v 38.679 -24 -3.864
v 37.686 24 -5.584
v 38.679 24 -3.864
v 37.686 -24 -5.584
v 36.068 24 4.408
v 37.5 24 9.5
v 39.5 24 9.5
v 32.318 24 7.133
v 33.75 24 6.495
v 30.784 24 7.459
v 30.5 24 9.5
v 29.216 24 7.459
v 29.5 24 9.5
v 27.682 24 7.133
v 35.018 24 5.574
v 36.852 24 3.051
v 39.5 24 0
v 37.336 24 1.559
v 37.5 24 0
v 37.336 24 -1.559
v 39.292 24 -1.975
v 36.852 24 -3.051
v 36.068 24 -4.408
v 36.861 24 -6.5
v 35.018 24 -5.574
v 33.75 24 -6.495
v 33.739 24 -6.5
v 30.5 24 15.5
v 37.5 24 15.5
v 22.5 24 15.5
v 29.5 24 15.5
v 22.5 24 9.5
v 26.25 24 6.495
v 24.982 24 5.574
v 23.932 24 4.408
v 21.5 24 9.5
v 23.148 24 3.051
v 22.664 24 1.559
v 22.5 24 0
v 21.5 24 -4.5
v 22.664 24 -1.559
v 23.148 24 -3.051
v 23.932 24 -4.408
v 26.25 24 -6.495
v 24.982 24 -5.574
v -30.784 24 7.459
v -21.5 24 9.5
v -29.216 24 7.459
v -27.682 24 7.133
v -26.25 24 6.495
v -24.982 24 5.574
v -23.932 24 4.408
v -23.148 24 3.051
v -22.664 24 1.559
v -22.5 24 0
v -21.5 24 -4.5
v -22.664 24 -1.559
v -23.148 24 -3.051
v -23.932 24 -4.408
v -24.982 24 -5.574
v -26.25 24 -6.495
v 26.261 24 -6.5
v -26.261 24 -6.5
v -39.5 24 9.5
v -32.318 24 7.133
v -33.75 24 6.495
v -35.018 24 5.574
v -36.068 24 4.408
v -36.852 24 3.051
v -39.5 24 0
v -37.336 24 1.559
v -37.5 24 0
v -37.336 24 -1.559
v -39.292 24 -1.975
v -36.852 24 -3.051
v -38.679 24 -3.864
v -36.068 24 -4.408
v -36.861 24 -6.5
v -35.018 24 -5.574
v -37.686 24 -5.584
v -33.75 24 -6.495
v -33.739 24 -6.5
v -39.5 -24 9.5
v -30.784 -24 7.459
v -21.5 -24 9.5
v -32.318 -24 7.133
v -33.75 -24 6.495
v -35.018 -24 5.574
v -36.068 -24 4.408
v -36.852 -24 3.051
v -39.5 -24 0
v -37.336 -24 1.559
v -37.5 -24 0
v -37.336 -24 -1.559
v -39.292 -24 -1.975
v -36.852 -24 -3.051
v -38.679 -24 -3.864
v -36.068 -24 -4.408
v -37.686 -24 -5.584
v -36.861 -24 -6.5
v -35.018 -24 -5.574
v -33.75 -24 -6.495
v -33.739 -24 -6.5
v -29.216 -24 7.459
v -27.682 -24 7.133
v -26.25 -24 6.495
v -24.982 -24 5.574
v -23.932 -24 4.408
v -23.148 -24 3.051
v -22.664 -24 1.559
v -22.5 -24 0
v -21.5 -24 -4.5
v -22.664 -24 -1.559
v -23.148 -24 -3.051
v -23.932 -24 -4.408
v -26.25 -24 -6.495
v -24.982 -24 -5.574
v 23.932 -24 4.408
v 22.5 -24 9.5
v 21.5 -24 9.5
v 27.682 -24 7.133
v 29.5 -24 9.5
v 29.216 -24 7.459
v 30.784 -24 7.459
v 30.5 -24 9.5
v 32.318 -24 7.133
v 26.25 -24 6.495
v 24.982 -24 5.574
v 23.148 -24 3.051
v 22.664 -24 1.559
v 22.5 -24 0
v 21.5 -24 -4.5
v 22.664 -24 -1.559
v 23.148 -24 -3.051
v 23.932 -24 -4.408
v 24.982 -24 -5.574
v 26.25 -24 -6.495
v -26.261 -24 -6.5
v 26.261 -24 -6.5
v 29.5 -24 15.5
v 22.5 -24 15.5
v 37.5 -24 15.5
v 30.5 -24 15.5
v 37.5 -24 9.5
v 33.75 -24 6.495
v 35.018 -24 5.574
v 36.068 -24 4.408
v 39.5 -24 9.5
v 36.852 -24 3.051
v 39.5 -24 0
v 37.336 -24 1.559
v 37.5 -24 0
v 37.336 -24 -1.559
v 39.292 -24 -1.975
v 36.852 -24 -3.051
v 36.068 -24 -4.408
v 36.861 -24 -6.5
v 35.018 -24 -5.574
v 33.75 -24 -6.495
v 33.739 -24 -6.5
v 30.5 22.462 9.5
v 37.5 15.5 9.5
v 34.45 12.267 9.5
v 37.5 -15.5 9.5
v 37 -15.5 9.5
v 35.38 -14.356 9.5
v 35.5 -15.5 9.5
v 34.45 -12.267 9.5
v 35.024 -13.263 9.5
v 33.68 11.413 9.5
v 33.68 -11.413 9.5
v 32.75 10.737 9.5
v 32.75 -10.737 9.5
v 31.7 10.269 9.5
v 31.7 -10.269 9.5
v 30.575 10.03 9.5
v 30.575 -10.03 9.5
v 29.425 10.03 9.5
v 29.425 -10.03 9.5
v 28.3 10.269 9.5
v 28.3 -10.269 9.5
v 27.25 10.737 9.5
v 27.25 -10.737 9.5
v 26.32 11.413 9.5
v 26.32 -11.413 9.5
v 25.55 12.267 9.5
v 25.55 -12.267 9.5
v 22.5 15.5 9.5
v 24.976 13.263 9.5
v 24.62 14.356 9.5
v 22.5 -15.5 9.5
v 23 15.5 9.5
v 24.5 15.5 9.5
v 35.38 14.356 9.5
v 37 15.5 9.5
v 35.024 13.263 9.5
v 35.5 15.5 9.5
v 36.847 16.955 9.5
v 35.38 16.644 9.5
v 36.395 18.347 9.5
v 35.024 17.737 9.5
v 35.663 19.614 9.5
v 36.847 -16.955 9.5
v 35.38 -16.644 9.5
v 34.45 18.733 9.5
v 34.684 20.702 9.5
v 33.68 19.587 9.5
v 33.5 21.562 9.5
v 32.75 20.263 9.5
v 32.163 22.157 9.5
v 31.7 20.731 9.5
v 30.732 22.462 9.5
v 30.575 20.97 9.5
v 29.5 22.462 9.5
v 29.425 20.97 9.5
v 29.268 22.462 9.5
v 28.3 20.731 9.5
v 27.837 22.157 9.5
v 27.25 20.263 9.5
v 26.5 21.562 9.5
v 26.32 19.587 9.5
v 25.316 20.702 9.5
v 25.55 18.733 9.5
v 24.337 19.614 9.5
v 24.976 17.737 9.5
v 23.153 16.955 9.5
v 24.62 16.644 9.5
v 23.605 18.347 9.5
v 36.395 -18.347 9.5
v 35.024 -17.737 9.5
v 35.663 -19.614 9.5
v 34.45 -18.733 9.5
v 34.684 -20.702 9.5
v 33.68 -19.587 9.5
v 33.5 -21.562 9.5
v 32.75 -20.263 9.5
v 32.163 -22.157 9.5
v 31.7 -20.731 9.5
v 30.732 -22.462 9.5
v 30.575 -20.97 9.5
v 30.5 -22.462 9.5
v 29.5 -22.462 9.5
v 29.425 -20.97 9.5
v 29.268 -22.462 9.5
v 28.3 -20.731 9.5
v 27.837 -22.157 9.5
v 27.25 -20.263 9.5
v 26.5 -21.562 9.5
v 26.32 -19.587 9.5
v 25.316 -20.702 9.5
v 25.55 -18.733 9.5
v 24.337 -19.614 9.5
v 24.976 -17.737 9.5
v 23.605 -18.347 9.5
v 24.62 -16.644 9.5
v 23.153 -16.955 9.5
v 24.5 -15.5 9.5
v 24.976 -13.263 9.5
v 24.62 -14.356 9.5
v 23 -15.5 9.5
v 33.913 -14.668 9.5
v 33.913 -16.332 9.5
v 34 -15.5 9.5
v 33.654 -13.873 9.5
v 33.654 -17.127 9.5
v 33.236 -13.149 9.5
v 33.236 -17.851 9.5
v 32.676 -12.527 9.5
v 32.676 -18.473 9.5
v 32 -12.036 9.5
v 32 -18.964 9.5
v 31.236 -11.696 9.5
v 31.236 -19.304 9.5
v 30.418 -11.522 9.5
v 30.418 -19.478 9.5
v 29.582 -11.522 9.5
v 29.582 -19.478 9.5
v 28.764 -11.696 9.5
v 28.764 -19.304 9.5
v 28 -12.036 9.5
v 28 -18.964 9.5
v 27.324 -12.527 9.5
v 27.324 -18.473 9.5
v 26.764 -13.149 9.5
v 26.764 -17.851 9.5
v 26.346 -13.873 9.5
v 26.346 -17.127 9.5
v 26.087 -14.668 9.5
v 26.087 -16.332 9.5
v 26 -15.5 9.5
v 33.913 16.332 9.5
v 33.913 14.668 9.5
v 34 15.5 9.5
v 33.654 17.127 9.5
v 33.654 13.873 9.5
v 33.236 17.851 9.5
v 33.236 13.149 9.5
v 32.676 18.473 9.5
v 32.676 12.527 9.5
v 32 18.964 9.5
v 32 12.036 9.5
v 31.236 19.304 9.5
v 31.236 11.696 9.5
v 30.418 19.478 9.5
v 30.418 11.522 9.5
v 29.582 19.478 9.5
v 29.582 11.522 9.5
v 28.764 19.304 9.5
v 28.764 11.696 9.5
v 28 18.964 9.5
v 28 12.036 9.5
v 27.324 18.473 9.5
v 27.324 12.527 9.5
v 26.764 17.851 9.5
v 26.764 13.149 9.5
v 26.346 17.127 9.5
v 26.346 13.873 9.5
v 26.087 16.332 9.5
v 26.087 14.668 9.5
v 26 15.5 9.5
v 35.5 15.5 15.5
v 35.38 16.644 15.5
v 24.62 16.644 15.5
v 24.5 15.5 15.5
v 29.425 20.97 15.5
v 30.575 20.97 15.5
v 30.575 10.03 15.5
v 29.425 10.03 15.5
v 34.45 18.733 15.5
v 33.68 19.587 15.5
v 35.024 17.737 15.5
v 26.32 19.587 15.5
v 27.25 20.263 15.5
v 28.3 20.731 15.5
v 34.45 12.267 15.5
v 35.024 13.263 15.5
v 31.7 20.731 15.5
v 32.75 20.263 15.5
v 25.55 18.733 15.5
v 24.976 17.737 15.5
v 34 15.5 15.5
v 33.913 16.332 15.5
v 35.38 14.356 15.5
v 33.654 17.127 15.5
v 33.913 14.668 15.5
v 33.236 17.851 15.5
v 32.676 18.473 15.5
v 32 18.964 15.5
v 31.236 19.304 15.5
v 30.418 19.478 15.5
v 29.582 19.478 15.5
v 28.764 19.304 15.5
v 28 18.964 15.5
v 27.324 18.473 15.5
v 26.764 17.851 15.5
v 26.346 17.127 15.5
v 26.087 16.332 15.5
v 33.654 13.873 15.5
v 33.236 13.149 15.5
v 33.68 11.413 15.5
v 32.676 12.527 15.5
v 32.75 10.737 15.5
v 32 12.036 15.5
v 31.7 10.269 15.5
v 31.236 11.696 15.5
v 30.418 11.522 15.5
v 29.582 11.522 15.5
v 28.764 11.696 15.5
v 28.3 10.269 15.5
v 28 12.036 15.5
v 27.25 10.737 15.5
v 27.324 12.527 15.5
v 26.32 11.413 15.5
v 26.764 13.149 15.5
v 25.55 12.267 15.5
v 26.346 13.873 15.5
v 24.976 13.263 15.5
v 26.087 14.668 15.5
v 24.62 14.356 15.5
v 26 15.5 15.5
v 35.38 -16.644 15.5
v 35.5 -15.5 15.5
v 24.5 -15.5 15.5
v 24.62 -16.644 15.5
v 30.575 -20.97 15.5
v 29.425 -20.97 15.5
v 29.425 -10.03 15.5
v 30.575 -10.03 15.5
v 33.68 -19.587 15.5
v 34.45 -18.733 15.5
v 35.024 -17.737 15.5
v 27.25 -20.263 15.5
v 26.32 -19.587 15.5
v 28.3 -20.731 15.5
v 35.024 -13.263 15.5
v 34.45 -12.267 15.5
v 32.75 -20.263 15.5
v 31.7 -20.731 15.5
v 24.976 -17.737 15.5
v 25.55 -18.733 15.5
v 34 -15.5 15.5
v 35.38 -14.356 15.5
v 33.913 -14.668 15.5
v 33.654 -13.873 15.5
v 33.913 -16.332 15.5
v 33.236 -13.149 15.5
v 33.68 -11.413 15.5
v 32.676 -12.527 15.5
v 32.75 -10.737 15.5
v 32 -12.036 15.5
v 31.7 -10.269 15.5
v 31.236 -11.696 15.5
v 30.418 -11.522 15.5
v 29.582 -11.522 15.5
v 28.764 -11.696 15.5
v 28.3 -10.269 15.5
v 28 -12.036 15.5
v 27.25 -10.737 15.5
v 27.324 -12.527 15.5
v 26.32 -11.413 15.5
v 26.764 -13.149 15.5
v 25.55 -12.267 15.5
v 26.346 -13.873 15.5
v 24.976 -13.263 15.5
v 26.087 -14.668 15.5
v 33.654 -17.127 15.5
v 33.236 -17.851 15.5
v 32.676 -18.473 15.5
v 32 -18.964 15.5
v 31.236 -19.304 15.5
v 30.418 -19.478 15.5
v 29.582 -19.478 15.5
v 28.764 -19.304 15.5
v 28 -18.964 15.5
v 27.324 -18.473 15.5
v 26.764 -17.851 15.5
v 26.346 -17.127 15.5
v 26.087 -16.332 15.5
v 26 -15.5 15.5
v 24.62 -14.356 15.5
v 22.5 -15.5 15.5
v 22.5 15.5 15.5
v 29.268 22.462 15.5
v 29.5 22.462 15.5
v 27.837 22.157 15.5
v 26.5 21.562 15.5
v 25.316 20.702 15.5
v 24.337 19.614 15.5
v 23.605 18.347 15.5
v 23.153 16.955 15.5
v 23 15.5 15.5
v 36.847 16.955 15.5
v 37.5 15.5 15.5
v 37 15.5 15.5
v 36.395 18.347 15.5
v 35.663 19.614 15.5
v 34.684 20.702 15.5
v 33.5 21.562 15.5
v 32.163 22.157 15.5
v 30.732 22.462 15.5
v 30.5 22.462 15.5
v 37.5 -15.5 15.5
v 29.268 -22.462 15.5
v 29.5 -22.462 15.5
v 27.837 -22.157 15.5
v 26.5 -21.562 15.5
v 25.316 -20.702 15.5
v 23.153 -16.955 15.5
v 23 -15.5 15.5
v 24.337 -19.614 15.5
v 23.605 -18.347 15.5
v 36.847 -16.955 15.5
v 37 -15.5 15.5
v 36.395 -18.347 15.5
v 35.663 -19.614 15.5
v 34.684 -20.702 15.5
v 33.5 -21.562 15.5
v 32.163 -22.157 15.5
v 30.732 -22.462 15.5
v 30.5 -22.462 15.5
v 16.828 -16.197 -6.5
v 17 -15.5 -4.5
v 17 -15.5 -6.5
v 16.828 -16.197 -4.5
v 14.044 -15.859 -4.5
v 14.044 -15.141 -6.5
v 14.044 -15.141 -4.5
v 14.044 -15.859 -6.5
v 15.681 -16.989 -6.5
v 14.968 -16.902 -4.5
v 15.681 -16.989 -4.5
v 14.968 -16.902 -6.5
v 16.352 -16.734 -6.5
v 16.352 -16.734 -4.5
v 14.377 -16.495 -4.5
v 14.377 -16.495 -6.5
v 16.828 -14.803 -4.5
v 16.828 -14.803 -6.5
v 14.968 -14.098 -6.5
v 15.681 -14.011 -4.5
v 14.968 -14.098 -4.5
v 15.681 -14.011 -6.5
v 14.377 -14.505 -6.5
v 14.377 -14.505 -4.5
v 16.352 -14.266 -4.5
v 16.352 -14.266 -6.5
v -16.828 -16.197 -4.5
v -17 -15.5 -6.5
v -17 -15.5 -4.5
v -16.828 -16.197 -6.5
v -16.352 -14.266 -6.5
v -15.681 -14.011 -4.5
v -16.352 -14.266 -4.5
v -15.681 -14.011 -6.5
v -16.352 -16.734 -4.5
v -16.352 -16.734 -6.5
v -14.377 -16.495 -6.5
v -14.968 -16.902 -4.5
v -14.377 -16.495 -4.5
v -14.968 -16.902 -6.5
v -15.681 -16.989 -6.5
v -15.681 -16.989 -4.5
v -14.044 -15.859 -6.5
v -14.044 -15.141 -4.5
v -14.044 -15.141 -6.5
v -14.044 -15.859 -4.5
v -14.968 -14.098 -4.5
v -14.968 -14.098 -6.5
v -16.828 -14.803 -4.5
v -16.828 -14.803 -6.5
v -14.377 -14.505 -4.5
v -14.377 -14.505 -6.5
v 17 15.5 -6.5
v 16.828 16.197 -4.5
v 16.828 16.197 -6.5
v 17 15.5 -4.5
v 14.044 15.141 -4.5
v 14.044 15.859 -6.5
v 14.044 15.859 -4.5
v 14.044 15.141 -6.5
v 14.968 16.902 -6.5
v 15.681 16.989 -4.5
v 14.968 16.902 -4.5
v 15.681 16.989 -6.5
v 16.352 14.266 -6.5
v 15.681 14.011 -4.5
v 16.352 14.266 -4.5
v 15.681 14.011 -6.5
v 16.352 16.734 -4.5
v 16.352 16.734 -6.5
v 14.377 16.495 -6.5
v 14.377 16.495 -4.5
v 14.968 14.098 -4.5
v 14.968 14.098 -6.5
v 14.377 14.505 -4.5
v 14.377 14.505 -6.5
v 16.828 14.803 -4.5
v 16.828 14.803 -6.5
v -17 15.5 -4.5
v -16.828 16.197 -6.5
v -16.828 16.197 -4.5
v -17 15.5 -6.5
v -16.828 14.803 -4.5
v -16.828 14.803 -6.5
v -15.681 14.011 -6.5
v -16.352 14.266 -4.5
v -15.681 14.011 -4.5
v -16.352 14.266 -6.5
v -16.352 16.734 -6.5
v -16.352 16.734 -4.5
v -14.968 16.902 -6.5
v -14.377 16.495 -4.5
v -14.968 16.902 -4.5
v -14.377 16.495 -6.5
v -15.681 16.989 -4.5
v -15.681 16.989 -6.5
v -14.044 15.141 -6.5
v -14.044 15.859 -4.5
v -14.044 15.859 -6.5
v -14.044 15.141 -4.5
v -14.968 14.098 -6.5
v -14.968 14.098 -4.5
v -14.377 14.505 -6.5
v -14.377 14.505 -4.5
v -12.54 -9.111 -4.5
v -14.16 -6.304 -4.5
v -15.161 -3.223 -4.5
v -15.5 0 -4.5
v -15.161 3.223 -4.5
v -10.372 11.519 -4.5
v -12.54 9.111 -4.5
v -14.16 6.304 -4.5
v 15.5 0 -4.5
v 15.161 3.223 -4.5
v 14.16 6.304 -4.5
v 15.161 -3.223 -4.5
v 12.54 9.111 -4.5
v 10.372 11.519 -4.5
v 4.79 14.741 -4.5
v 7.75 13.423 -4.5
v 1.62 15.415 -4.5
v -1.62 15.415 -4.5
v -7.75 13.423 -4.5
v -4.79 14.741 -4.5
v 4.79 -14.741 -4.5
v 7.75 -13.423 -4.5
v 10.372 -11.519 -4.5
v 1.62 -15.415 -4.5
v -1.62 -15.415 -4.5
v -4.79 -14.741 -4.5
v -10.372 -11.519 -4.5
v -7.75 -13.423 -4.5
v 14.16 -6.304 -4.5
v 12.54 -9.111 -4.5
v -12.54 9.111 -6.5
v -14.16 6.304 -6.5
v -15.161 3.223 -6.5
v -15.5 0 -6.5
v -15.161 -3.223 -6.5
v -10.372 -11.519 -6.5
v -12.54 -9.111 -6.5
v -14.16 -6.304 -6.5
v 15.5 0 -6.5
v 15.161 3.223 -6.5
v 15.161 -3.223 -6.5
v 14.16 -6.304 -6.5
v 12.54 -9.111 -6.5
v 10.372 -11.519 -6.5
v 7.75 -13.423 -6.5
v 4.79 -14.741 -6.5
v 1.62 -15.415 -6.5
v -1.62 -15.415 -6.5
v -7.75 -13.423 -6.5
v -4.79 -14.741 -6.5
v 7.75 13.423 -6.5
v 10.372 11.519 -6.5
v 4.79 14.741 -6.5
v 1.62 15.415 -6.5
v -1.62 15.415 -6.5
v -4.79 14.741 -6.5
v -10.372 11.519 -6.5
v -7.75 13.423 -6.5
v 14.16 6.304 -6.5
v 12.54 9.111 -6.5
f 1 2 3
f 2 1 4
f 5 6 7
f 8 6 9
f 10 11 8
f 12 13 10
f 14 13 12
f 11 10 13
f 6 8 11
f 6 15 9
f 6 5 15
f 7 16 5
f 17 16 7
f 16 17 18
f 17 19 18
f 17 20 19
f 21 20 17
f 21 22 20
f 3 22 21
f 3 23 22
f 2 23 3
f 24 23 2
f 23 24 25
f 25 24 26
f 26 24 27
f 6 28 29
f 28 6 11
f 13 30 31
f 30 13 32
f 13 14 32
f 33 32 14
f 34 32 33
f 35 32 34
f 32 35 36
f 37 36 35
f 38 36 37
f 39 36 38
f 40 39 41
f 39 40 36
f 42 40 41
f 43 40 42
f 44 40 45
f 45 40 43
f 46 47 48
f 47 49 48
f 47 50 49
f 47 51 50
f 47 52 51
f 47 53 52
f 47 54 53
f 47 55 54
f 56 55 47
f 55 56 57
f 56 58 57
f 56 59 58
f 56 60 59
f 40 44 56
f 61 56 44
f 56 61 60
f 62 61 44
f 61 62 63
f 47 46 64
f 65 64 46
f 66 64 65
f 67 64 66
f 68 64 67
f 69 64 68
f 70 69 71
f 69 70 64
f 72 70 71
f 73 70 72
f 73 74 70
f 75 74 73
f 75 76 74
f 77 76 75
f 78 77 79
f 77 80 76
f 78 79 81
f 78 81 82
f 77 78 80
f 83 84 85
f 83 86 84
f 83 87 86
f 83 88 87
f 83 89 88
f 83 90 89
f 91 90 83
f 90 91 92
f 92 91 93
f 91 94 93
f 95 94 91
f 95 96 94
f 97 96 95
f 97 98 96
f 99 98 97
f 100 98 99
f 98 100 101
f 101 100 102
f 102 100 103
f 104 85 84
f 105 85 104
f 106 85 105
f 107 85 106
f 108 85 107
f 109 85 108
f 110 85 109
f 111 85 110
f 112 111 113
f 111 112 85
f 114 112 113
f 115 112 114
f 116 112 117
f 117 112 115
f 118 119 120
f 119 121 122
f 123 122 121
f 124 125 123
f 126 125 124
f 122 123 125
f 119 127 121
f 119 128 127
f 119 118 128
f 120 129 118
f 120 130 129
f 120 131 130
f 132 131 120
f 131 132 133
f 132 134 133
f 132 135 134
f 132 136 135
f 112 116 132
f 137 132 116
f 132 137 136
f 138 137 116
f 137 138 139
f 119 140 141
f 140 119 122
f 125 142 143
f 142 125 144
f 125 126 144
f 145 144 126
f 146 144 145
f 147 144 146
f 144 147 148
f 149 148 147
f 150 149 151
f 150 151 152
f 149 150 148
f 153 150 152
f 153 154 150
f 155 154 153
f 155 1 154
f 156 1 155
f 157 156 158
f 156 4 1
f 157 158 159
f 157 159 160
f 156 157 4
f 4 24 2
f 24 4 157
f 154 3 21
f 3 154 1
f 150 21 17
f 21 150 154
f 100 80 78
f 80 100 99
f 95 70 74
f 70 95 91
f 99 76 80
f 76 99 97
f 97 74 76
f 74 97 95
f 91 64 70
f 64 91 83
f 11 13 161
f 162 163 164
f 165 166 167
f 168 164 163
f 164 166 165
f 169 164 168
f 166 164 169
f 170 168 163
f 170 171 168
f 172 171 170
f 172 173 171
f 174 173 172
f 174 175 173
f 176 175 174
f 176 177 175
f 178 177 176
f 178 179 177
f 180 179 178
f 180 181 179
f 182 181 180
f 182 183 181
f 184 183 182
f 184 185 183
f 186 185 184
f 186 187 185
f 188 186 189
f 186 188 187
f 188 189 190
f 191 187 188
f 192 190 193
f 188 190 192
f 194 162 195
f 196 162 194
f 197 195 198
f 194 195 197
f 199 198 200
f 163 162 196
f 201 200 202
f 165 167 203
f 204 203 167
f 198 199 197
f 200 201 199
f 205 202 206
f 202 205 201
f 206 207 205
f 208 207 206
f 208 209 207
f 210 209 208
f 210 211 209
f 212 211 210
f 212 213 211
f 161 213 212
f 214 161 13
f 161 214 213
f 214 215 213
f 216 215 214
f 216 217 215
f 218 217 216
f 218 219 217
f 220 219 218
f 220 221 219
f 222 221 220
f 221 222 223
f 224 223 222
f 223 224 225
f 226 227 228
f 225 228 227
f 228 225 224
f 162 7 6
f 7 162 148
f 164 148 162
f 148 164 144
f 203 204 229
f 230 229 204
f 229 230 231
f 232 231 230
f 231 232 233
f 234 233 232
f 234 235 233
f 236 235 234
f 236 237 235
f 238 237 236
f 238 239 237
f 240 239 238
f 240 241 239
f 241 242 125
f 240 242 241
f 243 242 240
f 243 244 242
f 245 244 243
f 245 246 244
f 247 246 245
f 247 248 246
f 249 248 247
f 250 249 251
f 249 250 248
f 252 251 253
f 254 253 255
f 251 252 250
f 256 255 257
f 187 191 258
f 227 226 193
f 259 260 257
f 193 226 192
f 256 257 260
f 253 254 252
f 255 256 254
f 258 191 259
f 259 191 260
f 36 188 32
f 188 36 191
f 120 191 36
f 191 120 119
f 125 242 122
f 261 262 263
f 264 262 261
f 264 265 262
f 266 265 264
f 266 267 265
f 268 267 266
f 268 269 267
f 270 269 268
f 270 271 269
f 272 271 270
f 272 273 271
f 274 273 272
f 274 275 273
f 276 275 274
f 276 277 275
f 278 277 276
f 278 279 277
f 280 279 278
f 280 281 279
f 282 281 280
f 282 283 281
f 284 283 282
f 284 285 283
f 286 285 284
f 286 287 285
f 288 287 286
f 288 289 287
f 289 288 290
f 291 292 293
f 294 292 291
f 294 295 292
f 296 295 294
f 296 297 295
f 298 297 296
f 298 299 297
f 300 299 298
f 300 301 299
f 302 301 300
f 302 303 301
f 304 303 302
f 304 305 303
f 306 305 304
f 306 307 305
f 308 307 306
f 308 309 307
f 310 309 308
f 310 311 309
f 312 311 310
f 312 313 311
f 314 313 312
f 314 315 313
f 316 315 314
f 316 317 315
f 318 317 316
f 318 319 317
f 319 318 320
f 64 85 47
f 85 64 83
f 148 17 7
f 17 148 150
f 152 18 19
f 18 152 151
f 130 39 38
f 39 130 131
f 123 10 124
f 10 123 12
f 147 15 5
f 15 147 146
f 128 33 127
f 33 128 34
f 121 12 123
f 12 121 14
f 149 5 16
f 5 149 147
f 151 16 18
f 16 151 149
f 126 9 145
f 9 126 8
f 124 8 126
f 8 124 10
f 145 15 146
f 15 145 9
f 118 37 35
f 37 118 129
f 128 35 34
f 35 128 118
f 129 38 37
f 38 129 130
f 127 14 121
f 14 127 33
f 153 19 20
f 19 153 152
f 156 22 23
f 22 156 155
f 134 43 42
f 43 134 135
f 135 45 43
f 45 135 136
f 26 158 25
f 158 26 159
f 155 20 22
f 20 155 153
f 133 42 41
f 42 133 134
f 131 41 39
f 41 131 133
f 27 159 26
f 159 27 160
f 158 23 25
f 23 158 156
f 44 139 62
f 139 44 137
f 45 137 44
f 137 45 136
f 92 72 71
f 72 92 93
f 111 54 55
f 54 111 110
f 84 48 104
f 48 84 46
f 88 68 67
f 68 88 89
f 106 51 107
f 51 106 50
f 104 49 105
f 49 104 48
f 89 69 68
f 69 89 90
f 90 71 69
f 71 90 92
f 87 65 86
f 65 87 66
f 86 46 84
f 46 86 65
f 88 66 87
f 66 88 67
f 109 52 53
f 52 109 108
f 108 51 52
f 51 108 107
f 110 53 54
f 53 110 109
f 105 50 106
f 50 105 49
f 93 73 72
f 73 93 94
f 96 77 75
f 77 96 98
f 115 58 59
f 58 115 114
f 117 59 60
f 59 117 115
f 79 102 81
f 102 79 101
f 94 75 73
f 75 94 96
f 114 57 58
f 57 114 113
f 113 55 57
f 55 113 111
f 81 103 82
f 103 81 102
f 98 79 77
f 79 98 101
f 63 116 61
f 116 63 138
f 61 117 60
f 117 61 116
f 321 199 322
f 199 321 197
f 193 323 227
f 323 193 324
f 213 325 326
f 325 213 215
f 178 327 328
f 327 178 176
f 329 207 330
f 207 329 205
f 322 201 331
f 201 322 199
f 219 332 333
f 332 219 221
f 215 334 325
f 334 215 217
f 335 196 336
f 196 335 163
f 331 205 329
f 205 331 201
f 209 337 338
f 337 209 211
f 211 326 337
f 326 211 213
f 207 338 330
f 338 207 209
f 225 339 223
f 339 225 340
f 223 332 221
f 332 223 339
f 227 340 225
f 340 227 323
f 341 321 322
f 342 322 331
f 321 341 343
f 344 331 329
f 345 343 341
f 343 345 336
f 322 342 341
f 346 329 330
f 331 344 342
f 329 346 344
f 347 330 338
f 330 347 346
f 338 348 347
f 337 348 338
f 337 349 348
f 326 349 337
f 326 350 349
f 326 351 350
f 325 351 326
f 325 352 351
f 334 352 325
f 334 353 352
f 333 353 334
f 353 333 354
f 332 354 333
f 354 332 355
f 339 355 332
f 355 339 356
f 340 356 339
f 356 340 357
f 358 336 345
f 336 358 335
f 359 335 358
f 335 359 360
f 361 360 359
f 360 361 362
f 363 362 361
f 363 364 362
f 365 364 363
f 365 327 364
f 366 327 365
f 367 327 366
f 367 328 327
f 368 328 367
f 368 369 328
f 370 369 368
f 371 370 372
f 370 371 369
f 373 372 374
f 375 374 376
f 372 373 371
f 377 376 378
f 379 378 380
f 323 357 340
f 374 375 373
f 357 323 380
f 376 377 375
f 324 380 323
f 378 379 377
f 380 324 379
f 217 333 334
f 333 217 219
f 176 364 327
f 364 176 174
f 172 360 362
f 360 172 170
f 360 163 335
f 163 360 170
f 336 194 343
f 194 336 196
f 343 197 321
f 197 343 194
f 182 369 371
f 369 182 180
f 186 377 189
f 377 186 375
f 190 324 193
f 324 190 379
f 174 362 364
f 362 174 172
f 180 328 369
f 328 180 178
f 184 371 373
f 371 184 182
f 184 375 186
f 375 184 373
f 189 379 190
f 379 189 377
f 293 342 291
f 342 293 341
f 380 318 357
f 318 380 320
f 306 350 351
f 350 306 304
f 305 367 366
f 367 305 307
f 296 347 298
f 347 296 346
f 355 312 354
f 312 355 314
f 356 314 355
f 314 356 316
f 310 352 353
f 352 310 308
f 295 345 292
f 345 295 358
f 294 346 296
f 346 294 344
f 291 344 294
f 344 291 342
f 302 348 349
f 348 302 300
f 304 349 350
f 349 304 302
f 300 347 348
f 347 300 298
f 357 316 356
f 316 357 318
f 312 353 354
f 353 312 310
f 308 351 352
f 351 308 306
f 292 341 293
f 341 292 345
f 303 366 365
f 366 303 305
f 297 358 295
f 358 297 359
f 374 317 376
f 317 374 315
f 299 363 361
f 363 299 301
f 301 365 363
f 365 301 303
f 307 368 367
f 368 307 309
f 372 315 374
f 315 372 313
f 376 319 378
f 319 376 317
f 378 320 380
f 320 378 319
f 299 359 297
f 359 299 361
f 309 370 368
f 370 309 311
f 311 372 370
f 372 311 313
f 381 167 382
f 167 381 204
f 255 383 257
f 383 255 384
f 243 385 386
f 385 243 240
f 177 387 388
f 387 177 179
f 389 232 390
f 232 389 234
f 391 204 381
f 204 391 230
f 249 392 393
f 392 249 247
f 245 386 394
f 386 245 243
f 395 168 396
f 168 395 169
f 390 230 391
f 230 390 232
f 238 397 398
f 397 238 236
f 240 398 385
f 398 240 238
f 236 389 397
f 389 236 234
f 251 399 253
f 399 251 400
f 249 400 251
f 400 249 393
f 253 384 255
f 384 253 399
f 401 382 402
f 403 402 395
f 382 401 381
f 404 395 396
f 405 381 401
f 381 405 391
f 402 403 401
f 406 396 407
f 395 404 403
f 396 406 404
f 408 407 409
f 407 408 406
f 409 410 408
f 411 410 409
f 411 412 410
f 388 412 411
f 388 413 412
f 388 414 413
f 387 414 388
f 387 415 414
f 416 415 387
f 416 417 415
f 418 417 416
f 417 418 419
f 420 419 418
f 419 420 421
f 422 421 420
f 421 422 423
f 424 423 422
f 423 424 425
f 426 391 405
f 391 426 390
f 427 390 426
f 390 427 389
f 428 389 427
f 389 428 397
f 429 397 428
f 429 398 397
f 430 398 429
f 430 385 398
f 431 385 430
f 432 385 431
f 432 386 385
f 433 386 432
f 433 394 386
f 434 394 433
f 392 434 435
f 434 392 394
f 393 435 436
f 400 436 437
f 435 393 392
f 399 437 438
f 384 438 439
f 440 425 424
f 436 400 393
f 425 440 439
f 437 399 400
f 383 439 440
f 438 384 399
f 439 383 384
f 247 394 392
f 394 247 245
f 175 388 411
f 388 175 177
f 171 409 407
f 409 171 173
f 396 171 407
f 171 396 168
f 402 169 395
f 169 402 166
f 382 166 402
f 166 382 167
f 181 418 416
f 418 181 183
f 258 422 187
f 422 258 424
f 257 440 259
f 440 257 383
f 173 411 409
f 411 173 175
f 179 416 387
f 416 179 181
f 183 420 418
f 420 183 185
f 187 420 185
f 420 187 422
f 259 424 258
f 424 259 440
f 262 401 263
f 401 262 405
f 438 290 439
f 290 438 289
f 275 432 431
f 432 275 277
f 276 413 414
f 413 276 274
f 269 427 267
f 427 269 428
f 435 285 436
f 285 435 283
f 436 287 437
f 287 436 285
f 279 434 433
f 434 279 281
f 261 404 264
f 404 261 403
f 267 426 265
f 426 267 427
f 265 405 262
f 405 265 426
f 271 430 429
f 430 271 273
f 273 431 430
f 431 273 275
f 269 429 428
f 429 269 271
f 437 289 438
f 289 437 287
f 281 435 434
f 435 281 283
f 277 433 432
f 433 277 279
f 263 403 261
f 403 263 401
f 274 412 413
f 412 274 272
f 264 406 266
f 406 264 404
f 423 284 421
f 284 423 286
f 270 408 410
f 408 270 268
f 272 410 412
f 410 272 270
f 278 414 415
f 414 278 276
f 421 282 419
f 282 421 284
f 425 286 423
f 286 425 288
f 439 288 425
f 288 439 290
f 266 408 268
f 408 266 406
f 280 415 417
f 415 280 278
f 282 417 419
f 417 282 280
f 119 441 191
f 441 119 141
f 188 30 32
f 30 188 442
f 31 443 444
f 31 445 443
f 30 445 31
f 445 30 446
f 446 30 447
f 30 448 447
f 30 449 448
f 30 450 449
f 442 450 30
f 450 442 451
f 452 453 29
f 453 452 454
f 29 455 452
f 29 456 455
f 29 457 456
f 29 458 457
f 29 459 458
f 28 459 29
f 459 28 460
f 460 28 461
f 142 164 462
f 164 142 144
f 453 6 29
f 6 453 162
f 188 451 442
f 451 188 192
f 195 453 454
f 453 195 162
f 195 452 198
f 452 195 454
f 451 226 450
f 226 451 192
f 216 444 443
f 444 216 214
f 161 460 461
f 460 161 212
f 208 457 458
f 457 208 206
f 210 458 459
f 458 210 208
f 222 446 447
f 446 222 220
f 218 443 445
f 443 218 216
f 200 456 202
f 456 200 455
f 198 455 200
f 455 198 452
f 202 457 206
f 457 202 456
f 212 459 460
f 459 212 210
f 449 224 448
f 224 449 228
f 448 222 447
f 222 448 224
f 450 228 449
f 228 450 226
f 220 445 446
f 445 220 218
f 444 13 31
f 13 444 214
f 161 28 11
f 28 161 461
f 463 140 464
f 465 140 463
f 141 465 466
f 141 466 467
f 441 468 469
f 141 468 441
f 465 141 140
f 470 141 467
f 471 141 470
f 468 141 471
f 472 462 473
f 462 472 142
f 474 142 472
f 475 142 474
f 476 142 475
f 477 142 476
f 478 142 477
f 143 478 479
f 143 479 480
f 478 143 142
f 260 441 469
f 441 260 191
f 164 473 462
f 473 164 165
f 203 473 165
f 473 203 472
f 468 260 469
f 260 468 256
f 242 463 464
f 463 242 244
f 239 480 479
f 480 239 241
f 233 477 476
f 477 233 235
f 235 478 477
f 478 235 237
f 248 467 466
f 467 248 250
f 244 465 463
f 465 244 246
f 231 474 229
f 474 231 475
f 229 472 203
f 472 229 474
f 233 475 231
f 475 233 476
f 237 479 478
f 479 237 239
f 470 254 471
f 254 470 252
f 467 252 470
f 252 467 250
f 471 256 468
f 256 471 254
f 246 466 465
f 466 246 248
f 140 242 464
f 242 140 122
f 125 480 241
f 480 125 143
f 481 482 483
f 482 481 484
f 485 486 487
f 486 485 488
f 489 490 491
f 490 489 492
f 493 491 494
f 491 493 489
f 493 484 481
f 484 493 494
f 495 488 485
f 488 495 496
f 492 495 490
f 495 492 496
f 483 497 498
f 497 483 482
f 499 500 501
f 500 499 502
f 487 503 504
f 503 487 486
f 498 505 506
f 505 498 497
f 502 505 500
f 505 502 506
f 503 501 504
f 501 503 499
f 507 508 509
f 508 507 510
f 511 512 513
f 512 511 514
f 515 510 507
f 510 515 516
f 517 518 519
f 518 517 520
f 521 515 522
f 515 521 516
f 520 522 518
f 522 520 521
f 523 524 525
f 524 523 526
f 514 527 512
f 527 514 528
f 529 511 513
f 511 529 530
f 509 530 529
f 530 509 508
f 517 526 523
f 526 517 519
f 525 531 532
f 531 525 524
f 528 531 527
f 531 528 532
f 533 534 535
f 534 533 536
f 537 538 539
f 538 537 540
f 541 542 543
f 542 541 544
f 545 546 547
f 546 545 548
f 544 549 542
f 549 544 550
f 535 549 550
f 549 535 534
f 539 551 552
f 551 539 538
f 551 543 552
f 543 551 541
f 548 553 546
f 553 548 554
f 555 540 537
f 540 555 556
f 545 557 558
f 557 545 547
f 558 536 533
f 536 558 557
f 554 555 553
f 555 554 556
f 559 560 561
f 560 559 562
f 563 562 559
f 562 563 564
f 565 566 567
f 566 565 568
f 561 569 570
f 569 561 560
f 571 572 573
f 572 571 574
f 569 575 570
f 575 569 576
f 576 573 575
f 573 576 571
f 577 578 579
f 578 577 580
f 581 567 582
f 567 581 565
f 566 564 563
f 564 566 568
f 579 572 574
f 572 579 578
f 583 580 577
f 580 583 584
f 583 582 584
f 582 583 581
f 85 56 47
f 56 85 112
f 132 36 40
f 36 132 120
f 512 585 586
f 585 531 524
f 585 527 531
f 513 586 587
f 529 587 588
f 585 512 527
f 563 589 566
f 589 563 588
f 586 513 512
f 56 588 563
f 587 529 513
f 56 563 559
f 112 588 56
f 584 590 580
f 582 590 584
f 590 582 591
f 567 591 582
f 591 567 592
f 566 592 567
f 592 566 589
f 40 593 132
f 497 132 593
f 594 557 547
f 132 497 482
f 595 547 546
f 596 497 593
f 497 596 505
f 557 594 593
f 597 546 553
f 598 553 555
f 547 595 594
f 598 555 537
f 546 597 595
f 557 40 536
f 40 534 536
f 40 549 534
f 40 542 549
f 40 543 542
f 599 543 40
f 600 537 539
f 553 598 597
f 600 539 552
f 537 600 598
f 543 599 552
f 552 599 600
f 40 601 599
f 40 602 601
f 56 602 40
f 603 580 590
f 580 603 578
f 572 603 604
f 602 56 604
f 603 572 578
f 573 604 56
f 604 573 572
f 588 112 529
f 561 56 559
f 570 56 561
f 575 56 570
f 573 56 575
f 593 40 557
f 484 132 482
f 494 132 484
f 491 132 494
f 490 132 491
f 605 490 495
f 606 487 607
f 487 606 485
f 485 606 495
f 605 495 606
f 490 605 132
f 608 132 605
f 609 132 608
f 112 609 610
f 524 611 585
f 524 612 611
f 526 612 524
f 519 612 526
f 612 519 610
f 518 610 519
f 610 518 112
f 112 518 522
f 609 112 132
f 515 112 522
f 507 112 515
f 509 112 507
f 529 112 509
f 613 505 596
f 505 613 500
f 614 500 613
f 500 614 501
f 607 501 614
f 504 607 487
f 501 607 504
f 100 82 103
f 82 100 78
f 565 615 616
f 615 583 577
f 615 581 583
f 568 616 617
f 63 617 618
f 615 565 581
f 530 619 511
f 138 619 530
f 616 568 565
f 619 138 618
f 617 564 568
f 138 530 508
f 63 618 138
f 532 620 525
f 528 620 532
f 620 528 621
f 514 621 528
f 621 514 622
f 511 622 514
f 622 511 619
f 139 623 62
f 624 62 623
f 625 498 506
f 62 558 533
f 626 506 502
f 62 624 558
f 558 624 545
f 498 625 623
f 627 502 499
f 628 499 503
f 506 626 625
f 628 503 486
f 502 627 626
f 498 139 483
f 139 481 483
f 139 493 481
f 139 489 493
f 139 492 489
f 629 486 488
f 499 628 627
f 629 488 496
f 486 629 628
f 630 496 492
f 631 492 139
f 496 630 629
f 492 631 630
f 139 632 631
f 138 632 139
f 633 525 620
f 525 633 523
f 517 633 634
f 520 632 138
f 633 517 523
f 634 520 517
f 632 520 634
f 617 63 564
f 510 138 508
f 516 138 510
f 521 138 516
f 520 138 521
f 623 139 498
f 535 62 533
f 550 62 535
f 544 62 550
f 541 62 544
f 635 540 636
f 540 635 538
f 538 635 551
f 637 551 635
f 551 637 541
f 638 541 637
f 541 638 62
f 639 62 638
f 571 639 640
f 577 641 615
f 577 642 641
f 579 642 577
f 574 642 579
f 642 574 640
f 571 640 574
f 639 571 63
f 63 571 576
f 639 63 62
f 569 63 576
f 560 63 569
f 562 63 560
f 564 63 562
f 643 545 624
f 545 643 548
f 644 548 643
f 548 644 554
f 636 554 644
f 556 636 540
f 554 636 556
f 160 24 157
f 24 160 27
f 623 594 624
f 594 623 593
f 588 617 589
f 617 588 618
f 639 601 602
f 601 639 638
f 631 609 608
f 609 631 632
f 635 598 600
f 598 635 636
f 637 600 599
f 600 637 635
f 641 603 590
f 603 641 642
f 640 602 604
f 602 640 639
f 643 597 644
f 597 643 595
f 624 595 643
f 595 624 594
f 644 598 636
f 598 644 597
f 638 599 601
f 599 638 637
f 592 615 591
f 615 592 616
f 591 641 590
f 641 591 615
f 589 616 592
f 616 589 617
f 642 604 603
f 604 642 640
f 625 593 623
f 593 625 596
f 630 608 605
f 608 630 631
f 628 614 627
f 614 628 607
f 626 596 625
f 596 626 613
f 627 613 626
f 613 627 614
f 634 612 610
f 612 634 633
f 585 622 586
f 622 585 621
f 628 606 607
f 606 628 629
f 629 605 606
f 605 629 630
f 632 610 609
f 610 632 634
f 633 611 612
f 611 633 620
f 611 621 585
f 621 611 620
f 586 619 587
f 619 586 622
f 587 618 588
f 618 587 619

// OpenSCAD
$fs=.75;

union() {
	difference() {
		union() {
			translate(v = [30.0000000000, 0, 0]) {
				rotate(a = [90, 0, 0]) {
					translate(v = [-0.0000000000, -0.0000000000, -24.0000000000]) {
						cylinder(d = 19.0000000000, h = 48.0000000000);
					}
				}
			}
			mirror(v = [1, 0, 0]) {
				translate(v = [30.0000000000, 0, 0]) {
					rotate(a = [90, 0, 0]) {
						translate(v = [-0.0000000000, -0.0000000000, -24.0000000000]) {
							cylinder(d = 19.0000000000, h = 48.0000000000);
						}
					}
				}
			}
			translate(v = [0, 0, -9.5000000000]) {
				translate(v = [0.0000000000, 0.0000000000, 4.7500000000]) {
					translate(v = [-30.0000000000, -24.0000000000, -4.7500000000]) {
						cube(size = [60.0000000000, 48.0000000000, 9.5000000000]);
					}
				}
			}
			translate(v = [0, 0, 9.5000000000]) {
				translate(v = [0.0000000000, 0.0000000000, -4.7500000000]) {
					translate(v = [-39.5000000000, -24.0000000000, -4.7500000000]) {
						cube(size = [79.0000000000, 48.0000000000, 9.5000000000]);
					}
				}
			}
		}
		rotate(a = [90, 0, 0]) {
			union() {
				translate(v = [30.0000000000, 0, 0]) {
					union() {
						translate(v = [0, 0, 12.0000000000]) {
							translate(v = [-0.0000000000, -0.0000000000, -12.5000000000]) {
								cylinder(d = 15.0000000000, h = 25.0000000000);
							}
						}
						mirror(v = [0, 0, 1]) {
							translate(v = [0, 0, 12.0000000000]) {
								translate(v = [-0.0000000000, -0.0000000000, -12.5000000000]) {
									cylinder(d = 15.0000000000, h = 25.0000000000);
								}
							}
						}
					}
				}
				mirror(v = [1, 0, 0]) {
					translate(v = [30.0000000000, 0, 0]) {
						union() {
							translate(v = [0, 0, 12.0000000000]) {
								translate(v = [-0.0000000000, -0.0000000000, -12.5000000000]) {
									cylinder(d = 15.0000000000, h = 25.0000000000);
								}
							}
							mirror(v = [0, 0, 1]) {
								translate(v = [0, 0, 12.0000000000]) {
									translate(v = [-0.0000000000, -0.0000000000, -12.5000000000]) {
										cylinder(d = 15.0000000000, h = 25.0000000000);
									}
								}
							}
						}
					}
				}
			}
		}
		translate(v = [0, 0.0000000000, -2.2500000000]) {
			translate(v = [-21.5000000000, -24.0000000000, -2.2500000000]) {
				cube(size = [43, 48.0000000000, 4.5000000000]);
			}
		}
		translate(v = [0, 0.0000000000, 7.5000000000]) {
			translate(v = [-21.5000000000, -24.0000000000, -7.5000000000]) {
				cube(size = [43, 48.0000000000, 15.0000000000]);
			}
		}
		translate(v = [0, 0, -9.5000000000]) {
			translate(v = [0.0000000000, 0.0000000000, 1.5000000000]) {
				translate(v = [-40.0000000000, -24.0000000000, -1.5000000000]) {
					cube(size = [80.0000000000, 48.0000000000, 3]);
				}
			}
		}
		#union() {
			translate(v = [15.5000000000, 15.5000000000, -7.5000000000]) {
				cylinder(d = 3, h = 10);
			}
			mirror(v = [1, 0, 0]) {
				translate(v = [15.5000000000, 15.5000000000, -7.5000000000]) {
					cylinder(d = 3, h = 10);
				}
			}
			mirror(v = [0, 1, 0]) {
				union() {
					translate(v = [15.5000000000, 15.5000000000, -7.5000000000]) {
						cylinder(d = 3, h = 10);
					}
					mirror(v = [1, 0, 0]) {
						translate(v = [15.5000000000, 15.5000000000, -7.5000000000]) {
							cylinder(d = 3, h = 10);
						}
					}
				}
			}
		}
		translate(v = [0, 0, -7.5000000000]) {
			cylinder(d = 31.0000000000, h = 10);
		}
	}
	translate(v = [30.0000000000, 0, 7.5000000000]) {
		union() {
			translate(v = [-7.5000000000, -24.0000000000, 0]) {
				cube(size = [15.0000000000, 48.0000000000, 2.0000000000]);
			}
			union() {
				translate(v = [0, 0, 2.0000000000]) {
					translate(v = [0, 15.5000000000, 0]) {
						difference() {
							cylinder(d = 11.0000000000, h = 6);
							cylinder(d = 8.0000000000, h = 7);
						}
					}
				}
				mirror(v = [0, 1, 0]) {
					translate(v = [0, 0, 2.0000000000]) {
						translate(v = [0, 15.5000000000, 0]) {
							difference() {
								cylinder(d = 11.0000000000, h = 6);
								cylinder(d = 8.0000000000, h = 7);
							}
						}
					}
				}
			}
			union() {
				translate(v = [0, 0, 2.0000000000]) {
					translate(v = [0, 15.5000000000, 0]) {
						difference() {
							translate(v = [-7.5000000000, 0, 0]) {
								cube(size = [15.0000000000, 8.5000000000, 6]);
							}
							cylinder(d = 14.0000000000, h = 7);
							translate(v = [-0.5000000000, 0, 0]) {
								cube(size = [1, 20, 7]);
							}
						}
					}
				}
				mirror(v = [0, 1, 0]) {
					translate(v = [0, 0, 2.0000000000]) {
						translate(v = [0, 15.5000000000, 0]) {
							difference() {
								translate(v = [-7.5000000000, 0, 0]) {
									cube(size = [15.0000000000, 8.5000000000, 6]);
								}
								cylinder(d = 14.0000000000, h = 7);
								translate(v = [-0.5000000000, 0, 0]) {
									cube(size = [1, 20, 7]);
								}
							}
						}
					}
				}
			}
		}
	}
}
/***********************************************
*********      SolidPython code:      **********
************************************************
 
from solid import *
from solid import extensions

class Object:
    pass


rod=Object()
rod.d=8.0

nema17 = Object()
nema17.side = 43
nema17.holeDistance = 31.0
nema17.screwD=3

bearing = Object()
bearing.outD = 15.0
bearing.length = 24.0

# to place the rod supports on top of the nema17
supportDepth=10
xSupport = ( cube([supportDepth,nema17.side,rod.d/2+1]).align('left','bottom')
             - cylinder(d=rod.d, h=supportDepth).rot(y=90).move(z=-.5)
             - cylinder(d=nema17.screwD,h=12).center().move(x=5,y=nema17.holeDistance/2.).mirrorCopy('y')
           ).rot(x=180)


bearingShape = cylinder(d=bearing.outD, h= bearing.length+1).center()

#minimal y cart, z motor will be placed in between the rails
yRodDistance = 60.0 # rounding up from nema17.side + bearing.outD
wall=2.0
cartWidth = 2*bearing.length
yBearings = bearingShape.move(z=bearing.length/2).mirrorCopy('z').move(x=yRodDistance/2).mirrorCopy('x')
yCart = ( ( cylinder(d= bearing.outD + 2*wall, h= cartWidth).center().rot(x=90).move(x=yRodDistance/2).mirrorCopy('x')
          + cube([yRodDistance, cartWidth, bearing.outD/2+wall]).align('bottom').move(z=-bearing.outD/2-wall)
          + cube([yRodDistance+bearing.outD+2*wall, cartWidth, bearing.outD/2+wall]).align('top').move(z=bearing.outD/2+wall)

          ) - yBearings.rot(x=90)
            - cube([nema17.side, cartWidth, bearing.outD/2-3]).align('top')
            - cube([nema17.side, cartWidth, bearing.outD]).align('bottom')
            - cube([yRodDistance+20, cartWidth, 3]).align('bottom').move(z=-bearing.outD/2-wall)
            - cylinder(d=3,h=10).move([nema17.holeDistance/2, nema17.holeDistance/2, -bearing.outD/2]).mirrorCopy('x').mirrorCopy('y').debug()
            - cylinder(d=nema17.holeDistance, h =10).move(z=-bearing.outD/2)
          )



#supports for holding the y rods in from the x bearings
bearingCover = cylinder(d= bearing.outD + 2*wall, h= bearing.length).center().rot(y=90)
baseBlock = hull( bearingCover
                  + cube([bearing.outD+2,10,bearing.outD+2]).align('back').move(y=bearing.outD/2+wall))
capScrews = cylinder(d=3., h=bearing.outD + 2*wall).center().move(x=rod.d/2+3./2+1,y=12).mirrorCopy('x')
rodHole = cylinder(d=rod.d,h=10).rot(x=-90).move(y=bearing.outD/2+wall)
#capTopBase = cube([bearing.length, 11, bearing.outD]).center('x').move(y=bearing.outD/2+wall)
#capTopBase = polygon([[0,0],[0,10],[10,10],[10,-3]]).linear_extrude(bearing.length,True).rot(y=-90).move(y=bearing.outD/2+wall)
capTopBase = cube([bearing.length, 20, bearing.outD]).center('x')-bearingCover

baseSupport = baseBlock - rodHole - capScrews

ySupport = part(cylinder(d= bearing.outD + 2*wall, h= yRodDistance + bearing.length).center().rot(y=90)
                 - hole(cylinder(d= bearing.outD, h= yRodDistance + bearing.length).center().rot(y=90))
                 + ( baseSupport
                     * cube(50).align('top')
                   ).move(x=yRodDistance/2).mirrorCopy('x')
                 - cube(1000).align('top').move(z=-bearing.outD/2+1)
                 )

ySupportRodCap = ( baseSupport
                * capTopBase
                - cube([bearing.length,50,1]).align('bottom')
                - cube([bearing.length,10,10]).center('xy')
                )

#support for z rods placed on the falt surface of the yCart above the bearings
zRodDistance = 31.
rodSupport = (cylinder(d=rod.d + 3, h=6) - cylinder(d=rod.d, h=6+1)).move(y=zRodDistance / 2)
beltGuide = ( cube([bearing.outD, bearing.length-zRodDistance/2, 6]).center('x')
              - cylinder(d=rod.d + 6,h=6+1)
              - cube([1,20,6+1]).center('x')).move(y=zRodDistance/2)
zSupport = ( cube([bearing.outD,2*bearing.length,wall]).center('xy')
             + rodSupport.move(z=wall).mirrorCopy('y')
             + beltGuide.move(z=wall).mirrorCopy('y')
           )

zstepper = cube([nema17.side,nema17.side,34]).center('xy').move(z=-bearing.outD/2).color('gray')


yCartZSupport = yCart + zSupport.move(x=yRodDistance/2 ,z=bearing.outD/2)


scene = ( xSupport.move(x=-100)
          + ySupport + ySupportRodCap.move(x=-yRodDistance / 2, z=3)
          + (yCartZSupport ).move(y=50)
        )
scene = yCartZSupport

scad_render_to_file(scene, 'routerParts.scad', '$fs=.75;')

scad_render_to_file(xSupport, 'routerParts_xSupport.scad', '$fs=.75;')
scad_render_to_file(ySupport, 'routerParts_ySupport.scad', '$fs=.75;')
scad_render_to_file(ySupportRodCap, 'routerParts_ySupportCap.scad', '$fs=.75;')
scad_render_to_file(yCartZSupport, 'routerParts_yCart.scad', '$fs=.75;')
 
 
************************************************/
